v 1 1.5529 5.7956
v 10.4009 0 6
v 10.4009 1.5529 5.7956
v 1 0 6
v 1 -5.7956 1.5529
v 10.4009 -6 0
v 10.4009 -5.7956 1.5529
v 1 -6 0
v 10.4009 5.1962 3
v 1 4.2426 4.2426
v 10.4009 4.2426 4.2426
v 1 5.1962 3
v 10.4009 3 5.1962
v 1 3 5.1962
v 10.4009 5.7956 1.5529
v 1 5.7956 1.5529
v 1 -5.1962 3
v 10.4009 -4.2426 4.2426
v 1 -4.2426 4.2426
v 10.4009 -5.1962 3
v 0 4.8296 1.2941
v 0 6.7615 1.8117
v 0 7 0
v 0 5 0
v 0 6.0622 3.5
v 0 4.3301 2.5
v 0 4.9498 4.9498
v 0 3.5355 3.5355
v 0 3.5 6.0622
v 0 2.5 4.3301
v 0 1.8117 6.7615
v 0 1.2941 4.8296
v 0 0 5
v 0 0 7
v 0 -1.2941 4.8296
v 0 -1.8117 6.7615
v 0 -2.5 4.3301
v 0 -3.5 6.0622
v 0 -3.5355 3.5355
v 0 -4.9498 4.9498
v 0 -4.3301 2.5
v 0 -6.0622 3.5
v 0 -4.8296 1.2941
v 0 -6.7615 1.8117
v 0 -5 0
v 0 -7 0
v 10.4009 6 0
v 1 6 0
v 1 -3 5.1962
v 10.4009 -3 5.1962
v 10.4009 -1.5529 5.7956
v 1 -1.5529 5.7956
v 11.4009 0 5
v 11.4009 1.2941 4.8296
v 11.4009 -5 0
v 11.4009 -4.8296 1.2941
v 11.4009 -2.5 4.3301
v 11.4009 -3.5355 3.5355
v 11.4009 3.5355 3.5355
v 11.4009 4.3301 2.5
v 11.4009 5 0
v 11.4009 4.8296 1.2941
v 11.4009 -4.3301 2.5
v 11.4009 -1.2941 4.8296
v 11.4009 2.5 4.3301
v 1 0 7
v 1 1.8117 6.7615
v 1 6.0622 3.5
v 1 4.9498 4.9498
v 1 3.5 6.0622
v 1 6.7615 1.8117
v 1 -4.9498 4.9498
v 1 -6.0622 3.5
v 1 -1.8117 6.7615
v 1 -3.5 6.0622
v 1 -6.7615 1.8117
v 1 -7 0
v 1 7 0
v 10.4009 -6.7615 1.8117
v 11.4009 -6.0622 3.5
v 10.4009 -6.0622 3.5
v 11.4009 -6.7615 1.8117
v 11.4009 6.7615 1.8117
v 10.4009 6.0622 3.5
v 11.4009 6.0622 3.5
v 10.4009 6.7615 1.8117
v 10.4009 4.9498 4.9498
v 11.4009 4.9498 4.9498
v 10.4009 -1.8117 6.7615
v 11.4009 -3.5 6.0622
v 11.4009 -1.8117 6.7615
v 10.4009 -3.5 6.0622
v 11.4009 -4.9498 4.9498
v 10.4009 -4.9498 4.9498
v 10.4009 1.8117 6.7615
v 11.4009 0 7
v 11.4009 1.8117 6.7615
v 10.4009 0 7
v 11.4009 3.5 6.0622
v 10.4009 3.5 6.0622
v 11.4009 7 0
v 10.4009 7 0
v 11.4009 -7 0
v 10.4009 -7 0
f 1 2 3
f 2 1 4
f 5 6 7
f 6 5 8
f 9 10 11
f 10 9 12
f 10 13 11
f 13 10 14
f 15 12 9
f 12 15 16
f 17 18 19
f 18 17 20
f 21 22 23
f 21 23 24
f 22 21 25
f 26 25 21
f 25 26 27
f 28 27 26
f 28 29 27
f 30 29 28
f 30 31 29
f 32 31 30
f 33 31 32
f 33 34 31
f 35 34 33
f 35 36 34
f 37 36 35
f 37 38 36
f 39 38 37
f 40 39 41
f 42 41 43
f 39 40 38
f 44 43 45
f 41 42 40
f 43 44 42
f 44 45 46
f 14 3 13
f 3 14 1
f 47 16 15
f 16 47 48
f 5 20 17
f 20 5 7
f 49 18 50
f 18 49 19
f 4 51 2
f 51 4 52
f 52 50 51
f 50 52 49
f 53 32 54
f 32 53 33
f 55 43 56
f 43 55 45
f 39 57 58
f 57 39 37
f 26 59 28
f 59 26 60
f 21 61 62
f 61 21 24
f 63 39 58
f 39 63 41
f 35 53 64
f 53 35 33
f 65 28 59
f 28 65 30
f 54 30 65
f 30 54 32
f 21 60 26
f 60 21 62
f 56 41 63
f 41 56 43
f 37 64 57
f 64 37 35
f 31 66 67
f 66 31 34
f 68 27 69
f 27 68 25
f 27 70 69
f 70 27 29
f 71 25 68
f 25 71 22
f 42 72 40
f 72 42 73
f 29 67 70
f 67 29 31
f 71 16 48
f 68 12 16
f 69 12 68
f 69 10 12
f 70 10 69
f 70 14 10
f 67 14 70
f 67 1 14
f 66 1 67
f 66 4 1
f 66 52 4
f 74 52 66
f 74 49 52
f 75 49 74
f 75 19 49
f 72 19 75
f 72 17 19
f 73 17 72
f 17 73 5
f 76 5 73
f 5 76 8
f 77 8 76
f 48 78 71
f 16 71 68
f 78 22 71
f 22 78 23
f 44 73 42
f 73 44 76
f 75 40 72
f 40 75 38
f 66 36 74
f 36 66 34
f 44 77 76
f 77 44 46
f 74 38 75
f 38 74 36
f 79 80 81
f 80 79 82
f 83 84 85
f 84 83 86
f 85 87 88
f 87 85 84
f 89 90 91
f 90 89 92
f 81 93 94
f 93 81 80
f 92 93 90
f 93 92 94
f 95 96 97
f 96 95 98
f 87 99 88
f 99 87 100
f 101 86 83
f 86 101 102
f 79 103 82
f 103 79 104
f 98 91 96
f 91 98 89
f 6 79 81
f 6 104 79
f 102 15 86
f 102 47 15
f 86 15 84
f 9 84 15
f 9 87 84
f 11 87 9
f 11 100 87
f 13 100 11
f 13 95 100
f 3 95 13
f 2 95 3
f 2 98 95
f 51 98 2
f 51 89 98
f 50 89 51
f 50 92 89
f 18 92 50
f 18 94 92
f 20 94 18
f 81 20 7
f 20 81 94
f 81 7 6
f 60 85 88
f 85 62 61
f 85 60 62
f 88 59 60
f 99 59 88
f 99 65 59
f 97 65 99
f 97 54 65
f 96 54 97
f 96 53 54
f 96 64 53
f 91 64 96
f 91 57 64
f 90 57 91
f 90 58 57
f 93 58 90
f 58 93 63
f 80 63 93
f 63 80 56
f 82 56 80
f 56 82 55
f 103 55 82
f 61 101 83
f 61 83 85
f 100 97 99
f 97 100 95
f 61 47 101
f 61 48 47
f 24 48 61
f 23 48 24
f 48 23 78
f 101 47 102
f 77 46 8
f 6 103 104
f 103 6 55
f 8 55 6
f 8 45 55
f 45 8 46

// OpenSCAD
// file: ../build_environments.scad
// build_environments.scad: modules to build level sections
//

module pool(diameter=10.0, wall_height=2.0, step_width=3.0, connections=[])
{
    difference() {
        union() {
        difference() {
            cylinder(h=0.5,r1=diameter+step_width,r2=diameter+step_width,$fn=48);
            translate([0,0,-0.1])
                cylinder(h=0.7,r1=diameter,r2=diameter,$fn=48);
        }
        difference() {
            cylinder(h=wall_height,r1=diameter+step_width+1.0,r2=diameter+step_width+1.0,$fn=48);
            translate([0,0,-0.1])
                cylinder(h=wall_height+0.2,r1=diameter+step_width,r2=diameter+step_width,$fn=48);
        }
        }
    
        for (c = connections)
        {
            rotate([0,90,0]) {
                angle = atan2(c[1],c[0]);
                rotate([-angle,0,0]) {
                    cylinder(h=diameter+5.0,r1=c[2],r2=c[2],$fn=48);
                }
            }
        }
    }
}

module straight(length=10.0, width=2.0, dy1=0.0, dy2=0.0, dz=0.0)
{
    dims = [0, 0, 0, 0, 0, (dz/length)];
    matrix = [
        [ 1, dims[0], dims[1], 0 ],
        [ dims[2], 1, dims[4], 0 ],
        [ dims[5], dims[3], 1, 0 ],
        [ 0, 0, 0, 1 ]
    ];
    multmatrix(matrix)
    difference() {
        translate([dy1,0,0])
        union() {
            rotate([0,90,0]) {
                difference() {
                    cylinder(h=(length-dy1-dy2),r1=width+1.0,r2=width+1.0,$fn=24);
                    translate([0,0,-0.1])
                        cylinder(h=(length-dy1-dy2+0.2),r1=width,r2=width,$fn=24);
                }
                difference() {
                    cylinder(h=1.0,r1=width+2.0,r2=width+2.0,$fn=24);
                    translate([0,0,-0.1])
                        cylinder(h=1.2,r1=width,r2=width,$fn=24);
                }
                translate([0,0,(length-dy1-dy2)-1.0]) {
                    difference() {
                        cylinder(h=1.0,r1=width+2.0,r2=width+2.0,$fn=24);
                        translate([0,0,-0.1])
                            cylinder(h=1.2,r1=width,r2=width,$fn=24);
                    }
                }
            }
        }
        translate([0,0,-(2*width+4.0)/2])
            cube([3*length,3*length,2*width+4.0],center=true);
    }
}

module curve(p0=[0,0], center=[0,0], dir=1, angle=0.0, width=2.0)
{
    radius = sqrt((p0[0]-center[0])*(p0[0]-center[0]) + (p0[1]-center[1])*(p0[1]-center[1]));
    if (dir == 0) {
        difference() {
            rotate([0,0,-90])
            difference() {
                rotate_extrude(angle = angle, convexity = 10, $fn=32)
                    translate([radius, 0, 0])
                        circle(r = width+1.0,$fn=24);
                rotate([0,0,-1.0])
                    rotate_extrude(angle = angle+2.0, convexity = 10, $fn=32)
                        translate([radius, 0, 0])
                            circle(r = width,$fn=24);
            }
            translate([0,0,-(2*width+4.0)/2])
                cube([5*radius,5*radius,2*width+4.0],center=true);
        }
    }
    else {
        difference() {
            rotate([0,0,90])
            difference() {
                rotate_extrude(angle = -angle, convexity = 10, $fn=32)
                    translate([radius, 0, 0])
                        circle(r = width+1.0,$fn=24);
                rotate([0,0,1.0])
                    rotate_extrude(angle = -angle-2.0, convexity = 10, $fn=32)
                        translate([radius, 0, 0])
                            circle(r = width,$fn=24);
            }
            translate([0,0,-(2*width+4.0)/2])
                cube([5*radius,5*radius,2*width+4.0],center=true);
        }
    }

}

// test pool
//pool(diameter=12.0000, wall_height=3.0000, step_width=3.0000, connections=[[0.0000,-26.0000,2.0000], [23.6074,0.0000,2.0000]]);

// test straight, slope
//straight(length=26.0000, width=2.0000, dy1=11.8322, dy2=6.7082, dz=0.0000);
//straight(length=29.1549, width=12.0000, dy1=0.0000, dy2=0.0000, dz=-15.0000);

// test curve
//curve(p0=[23.6074, 0.0000], center=[23.6074, 5.0000], dir=0, angle=60.1011, width=2.0000);
//curve(p0=[33.6426, 12.4219], center=[37.9771, 9.9295], dir=1, angle=120.4627, width=2.0000);
// main file
use <../build_environments.scad>;
straight(length=51.0872, width=5.0000, dy1=0.0000, dy2=39.6863, dz=0.0000);
